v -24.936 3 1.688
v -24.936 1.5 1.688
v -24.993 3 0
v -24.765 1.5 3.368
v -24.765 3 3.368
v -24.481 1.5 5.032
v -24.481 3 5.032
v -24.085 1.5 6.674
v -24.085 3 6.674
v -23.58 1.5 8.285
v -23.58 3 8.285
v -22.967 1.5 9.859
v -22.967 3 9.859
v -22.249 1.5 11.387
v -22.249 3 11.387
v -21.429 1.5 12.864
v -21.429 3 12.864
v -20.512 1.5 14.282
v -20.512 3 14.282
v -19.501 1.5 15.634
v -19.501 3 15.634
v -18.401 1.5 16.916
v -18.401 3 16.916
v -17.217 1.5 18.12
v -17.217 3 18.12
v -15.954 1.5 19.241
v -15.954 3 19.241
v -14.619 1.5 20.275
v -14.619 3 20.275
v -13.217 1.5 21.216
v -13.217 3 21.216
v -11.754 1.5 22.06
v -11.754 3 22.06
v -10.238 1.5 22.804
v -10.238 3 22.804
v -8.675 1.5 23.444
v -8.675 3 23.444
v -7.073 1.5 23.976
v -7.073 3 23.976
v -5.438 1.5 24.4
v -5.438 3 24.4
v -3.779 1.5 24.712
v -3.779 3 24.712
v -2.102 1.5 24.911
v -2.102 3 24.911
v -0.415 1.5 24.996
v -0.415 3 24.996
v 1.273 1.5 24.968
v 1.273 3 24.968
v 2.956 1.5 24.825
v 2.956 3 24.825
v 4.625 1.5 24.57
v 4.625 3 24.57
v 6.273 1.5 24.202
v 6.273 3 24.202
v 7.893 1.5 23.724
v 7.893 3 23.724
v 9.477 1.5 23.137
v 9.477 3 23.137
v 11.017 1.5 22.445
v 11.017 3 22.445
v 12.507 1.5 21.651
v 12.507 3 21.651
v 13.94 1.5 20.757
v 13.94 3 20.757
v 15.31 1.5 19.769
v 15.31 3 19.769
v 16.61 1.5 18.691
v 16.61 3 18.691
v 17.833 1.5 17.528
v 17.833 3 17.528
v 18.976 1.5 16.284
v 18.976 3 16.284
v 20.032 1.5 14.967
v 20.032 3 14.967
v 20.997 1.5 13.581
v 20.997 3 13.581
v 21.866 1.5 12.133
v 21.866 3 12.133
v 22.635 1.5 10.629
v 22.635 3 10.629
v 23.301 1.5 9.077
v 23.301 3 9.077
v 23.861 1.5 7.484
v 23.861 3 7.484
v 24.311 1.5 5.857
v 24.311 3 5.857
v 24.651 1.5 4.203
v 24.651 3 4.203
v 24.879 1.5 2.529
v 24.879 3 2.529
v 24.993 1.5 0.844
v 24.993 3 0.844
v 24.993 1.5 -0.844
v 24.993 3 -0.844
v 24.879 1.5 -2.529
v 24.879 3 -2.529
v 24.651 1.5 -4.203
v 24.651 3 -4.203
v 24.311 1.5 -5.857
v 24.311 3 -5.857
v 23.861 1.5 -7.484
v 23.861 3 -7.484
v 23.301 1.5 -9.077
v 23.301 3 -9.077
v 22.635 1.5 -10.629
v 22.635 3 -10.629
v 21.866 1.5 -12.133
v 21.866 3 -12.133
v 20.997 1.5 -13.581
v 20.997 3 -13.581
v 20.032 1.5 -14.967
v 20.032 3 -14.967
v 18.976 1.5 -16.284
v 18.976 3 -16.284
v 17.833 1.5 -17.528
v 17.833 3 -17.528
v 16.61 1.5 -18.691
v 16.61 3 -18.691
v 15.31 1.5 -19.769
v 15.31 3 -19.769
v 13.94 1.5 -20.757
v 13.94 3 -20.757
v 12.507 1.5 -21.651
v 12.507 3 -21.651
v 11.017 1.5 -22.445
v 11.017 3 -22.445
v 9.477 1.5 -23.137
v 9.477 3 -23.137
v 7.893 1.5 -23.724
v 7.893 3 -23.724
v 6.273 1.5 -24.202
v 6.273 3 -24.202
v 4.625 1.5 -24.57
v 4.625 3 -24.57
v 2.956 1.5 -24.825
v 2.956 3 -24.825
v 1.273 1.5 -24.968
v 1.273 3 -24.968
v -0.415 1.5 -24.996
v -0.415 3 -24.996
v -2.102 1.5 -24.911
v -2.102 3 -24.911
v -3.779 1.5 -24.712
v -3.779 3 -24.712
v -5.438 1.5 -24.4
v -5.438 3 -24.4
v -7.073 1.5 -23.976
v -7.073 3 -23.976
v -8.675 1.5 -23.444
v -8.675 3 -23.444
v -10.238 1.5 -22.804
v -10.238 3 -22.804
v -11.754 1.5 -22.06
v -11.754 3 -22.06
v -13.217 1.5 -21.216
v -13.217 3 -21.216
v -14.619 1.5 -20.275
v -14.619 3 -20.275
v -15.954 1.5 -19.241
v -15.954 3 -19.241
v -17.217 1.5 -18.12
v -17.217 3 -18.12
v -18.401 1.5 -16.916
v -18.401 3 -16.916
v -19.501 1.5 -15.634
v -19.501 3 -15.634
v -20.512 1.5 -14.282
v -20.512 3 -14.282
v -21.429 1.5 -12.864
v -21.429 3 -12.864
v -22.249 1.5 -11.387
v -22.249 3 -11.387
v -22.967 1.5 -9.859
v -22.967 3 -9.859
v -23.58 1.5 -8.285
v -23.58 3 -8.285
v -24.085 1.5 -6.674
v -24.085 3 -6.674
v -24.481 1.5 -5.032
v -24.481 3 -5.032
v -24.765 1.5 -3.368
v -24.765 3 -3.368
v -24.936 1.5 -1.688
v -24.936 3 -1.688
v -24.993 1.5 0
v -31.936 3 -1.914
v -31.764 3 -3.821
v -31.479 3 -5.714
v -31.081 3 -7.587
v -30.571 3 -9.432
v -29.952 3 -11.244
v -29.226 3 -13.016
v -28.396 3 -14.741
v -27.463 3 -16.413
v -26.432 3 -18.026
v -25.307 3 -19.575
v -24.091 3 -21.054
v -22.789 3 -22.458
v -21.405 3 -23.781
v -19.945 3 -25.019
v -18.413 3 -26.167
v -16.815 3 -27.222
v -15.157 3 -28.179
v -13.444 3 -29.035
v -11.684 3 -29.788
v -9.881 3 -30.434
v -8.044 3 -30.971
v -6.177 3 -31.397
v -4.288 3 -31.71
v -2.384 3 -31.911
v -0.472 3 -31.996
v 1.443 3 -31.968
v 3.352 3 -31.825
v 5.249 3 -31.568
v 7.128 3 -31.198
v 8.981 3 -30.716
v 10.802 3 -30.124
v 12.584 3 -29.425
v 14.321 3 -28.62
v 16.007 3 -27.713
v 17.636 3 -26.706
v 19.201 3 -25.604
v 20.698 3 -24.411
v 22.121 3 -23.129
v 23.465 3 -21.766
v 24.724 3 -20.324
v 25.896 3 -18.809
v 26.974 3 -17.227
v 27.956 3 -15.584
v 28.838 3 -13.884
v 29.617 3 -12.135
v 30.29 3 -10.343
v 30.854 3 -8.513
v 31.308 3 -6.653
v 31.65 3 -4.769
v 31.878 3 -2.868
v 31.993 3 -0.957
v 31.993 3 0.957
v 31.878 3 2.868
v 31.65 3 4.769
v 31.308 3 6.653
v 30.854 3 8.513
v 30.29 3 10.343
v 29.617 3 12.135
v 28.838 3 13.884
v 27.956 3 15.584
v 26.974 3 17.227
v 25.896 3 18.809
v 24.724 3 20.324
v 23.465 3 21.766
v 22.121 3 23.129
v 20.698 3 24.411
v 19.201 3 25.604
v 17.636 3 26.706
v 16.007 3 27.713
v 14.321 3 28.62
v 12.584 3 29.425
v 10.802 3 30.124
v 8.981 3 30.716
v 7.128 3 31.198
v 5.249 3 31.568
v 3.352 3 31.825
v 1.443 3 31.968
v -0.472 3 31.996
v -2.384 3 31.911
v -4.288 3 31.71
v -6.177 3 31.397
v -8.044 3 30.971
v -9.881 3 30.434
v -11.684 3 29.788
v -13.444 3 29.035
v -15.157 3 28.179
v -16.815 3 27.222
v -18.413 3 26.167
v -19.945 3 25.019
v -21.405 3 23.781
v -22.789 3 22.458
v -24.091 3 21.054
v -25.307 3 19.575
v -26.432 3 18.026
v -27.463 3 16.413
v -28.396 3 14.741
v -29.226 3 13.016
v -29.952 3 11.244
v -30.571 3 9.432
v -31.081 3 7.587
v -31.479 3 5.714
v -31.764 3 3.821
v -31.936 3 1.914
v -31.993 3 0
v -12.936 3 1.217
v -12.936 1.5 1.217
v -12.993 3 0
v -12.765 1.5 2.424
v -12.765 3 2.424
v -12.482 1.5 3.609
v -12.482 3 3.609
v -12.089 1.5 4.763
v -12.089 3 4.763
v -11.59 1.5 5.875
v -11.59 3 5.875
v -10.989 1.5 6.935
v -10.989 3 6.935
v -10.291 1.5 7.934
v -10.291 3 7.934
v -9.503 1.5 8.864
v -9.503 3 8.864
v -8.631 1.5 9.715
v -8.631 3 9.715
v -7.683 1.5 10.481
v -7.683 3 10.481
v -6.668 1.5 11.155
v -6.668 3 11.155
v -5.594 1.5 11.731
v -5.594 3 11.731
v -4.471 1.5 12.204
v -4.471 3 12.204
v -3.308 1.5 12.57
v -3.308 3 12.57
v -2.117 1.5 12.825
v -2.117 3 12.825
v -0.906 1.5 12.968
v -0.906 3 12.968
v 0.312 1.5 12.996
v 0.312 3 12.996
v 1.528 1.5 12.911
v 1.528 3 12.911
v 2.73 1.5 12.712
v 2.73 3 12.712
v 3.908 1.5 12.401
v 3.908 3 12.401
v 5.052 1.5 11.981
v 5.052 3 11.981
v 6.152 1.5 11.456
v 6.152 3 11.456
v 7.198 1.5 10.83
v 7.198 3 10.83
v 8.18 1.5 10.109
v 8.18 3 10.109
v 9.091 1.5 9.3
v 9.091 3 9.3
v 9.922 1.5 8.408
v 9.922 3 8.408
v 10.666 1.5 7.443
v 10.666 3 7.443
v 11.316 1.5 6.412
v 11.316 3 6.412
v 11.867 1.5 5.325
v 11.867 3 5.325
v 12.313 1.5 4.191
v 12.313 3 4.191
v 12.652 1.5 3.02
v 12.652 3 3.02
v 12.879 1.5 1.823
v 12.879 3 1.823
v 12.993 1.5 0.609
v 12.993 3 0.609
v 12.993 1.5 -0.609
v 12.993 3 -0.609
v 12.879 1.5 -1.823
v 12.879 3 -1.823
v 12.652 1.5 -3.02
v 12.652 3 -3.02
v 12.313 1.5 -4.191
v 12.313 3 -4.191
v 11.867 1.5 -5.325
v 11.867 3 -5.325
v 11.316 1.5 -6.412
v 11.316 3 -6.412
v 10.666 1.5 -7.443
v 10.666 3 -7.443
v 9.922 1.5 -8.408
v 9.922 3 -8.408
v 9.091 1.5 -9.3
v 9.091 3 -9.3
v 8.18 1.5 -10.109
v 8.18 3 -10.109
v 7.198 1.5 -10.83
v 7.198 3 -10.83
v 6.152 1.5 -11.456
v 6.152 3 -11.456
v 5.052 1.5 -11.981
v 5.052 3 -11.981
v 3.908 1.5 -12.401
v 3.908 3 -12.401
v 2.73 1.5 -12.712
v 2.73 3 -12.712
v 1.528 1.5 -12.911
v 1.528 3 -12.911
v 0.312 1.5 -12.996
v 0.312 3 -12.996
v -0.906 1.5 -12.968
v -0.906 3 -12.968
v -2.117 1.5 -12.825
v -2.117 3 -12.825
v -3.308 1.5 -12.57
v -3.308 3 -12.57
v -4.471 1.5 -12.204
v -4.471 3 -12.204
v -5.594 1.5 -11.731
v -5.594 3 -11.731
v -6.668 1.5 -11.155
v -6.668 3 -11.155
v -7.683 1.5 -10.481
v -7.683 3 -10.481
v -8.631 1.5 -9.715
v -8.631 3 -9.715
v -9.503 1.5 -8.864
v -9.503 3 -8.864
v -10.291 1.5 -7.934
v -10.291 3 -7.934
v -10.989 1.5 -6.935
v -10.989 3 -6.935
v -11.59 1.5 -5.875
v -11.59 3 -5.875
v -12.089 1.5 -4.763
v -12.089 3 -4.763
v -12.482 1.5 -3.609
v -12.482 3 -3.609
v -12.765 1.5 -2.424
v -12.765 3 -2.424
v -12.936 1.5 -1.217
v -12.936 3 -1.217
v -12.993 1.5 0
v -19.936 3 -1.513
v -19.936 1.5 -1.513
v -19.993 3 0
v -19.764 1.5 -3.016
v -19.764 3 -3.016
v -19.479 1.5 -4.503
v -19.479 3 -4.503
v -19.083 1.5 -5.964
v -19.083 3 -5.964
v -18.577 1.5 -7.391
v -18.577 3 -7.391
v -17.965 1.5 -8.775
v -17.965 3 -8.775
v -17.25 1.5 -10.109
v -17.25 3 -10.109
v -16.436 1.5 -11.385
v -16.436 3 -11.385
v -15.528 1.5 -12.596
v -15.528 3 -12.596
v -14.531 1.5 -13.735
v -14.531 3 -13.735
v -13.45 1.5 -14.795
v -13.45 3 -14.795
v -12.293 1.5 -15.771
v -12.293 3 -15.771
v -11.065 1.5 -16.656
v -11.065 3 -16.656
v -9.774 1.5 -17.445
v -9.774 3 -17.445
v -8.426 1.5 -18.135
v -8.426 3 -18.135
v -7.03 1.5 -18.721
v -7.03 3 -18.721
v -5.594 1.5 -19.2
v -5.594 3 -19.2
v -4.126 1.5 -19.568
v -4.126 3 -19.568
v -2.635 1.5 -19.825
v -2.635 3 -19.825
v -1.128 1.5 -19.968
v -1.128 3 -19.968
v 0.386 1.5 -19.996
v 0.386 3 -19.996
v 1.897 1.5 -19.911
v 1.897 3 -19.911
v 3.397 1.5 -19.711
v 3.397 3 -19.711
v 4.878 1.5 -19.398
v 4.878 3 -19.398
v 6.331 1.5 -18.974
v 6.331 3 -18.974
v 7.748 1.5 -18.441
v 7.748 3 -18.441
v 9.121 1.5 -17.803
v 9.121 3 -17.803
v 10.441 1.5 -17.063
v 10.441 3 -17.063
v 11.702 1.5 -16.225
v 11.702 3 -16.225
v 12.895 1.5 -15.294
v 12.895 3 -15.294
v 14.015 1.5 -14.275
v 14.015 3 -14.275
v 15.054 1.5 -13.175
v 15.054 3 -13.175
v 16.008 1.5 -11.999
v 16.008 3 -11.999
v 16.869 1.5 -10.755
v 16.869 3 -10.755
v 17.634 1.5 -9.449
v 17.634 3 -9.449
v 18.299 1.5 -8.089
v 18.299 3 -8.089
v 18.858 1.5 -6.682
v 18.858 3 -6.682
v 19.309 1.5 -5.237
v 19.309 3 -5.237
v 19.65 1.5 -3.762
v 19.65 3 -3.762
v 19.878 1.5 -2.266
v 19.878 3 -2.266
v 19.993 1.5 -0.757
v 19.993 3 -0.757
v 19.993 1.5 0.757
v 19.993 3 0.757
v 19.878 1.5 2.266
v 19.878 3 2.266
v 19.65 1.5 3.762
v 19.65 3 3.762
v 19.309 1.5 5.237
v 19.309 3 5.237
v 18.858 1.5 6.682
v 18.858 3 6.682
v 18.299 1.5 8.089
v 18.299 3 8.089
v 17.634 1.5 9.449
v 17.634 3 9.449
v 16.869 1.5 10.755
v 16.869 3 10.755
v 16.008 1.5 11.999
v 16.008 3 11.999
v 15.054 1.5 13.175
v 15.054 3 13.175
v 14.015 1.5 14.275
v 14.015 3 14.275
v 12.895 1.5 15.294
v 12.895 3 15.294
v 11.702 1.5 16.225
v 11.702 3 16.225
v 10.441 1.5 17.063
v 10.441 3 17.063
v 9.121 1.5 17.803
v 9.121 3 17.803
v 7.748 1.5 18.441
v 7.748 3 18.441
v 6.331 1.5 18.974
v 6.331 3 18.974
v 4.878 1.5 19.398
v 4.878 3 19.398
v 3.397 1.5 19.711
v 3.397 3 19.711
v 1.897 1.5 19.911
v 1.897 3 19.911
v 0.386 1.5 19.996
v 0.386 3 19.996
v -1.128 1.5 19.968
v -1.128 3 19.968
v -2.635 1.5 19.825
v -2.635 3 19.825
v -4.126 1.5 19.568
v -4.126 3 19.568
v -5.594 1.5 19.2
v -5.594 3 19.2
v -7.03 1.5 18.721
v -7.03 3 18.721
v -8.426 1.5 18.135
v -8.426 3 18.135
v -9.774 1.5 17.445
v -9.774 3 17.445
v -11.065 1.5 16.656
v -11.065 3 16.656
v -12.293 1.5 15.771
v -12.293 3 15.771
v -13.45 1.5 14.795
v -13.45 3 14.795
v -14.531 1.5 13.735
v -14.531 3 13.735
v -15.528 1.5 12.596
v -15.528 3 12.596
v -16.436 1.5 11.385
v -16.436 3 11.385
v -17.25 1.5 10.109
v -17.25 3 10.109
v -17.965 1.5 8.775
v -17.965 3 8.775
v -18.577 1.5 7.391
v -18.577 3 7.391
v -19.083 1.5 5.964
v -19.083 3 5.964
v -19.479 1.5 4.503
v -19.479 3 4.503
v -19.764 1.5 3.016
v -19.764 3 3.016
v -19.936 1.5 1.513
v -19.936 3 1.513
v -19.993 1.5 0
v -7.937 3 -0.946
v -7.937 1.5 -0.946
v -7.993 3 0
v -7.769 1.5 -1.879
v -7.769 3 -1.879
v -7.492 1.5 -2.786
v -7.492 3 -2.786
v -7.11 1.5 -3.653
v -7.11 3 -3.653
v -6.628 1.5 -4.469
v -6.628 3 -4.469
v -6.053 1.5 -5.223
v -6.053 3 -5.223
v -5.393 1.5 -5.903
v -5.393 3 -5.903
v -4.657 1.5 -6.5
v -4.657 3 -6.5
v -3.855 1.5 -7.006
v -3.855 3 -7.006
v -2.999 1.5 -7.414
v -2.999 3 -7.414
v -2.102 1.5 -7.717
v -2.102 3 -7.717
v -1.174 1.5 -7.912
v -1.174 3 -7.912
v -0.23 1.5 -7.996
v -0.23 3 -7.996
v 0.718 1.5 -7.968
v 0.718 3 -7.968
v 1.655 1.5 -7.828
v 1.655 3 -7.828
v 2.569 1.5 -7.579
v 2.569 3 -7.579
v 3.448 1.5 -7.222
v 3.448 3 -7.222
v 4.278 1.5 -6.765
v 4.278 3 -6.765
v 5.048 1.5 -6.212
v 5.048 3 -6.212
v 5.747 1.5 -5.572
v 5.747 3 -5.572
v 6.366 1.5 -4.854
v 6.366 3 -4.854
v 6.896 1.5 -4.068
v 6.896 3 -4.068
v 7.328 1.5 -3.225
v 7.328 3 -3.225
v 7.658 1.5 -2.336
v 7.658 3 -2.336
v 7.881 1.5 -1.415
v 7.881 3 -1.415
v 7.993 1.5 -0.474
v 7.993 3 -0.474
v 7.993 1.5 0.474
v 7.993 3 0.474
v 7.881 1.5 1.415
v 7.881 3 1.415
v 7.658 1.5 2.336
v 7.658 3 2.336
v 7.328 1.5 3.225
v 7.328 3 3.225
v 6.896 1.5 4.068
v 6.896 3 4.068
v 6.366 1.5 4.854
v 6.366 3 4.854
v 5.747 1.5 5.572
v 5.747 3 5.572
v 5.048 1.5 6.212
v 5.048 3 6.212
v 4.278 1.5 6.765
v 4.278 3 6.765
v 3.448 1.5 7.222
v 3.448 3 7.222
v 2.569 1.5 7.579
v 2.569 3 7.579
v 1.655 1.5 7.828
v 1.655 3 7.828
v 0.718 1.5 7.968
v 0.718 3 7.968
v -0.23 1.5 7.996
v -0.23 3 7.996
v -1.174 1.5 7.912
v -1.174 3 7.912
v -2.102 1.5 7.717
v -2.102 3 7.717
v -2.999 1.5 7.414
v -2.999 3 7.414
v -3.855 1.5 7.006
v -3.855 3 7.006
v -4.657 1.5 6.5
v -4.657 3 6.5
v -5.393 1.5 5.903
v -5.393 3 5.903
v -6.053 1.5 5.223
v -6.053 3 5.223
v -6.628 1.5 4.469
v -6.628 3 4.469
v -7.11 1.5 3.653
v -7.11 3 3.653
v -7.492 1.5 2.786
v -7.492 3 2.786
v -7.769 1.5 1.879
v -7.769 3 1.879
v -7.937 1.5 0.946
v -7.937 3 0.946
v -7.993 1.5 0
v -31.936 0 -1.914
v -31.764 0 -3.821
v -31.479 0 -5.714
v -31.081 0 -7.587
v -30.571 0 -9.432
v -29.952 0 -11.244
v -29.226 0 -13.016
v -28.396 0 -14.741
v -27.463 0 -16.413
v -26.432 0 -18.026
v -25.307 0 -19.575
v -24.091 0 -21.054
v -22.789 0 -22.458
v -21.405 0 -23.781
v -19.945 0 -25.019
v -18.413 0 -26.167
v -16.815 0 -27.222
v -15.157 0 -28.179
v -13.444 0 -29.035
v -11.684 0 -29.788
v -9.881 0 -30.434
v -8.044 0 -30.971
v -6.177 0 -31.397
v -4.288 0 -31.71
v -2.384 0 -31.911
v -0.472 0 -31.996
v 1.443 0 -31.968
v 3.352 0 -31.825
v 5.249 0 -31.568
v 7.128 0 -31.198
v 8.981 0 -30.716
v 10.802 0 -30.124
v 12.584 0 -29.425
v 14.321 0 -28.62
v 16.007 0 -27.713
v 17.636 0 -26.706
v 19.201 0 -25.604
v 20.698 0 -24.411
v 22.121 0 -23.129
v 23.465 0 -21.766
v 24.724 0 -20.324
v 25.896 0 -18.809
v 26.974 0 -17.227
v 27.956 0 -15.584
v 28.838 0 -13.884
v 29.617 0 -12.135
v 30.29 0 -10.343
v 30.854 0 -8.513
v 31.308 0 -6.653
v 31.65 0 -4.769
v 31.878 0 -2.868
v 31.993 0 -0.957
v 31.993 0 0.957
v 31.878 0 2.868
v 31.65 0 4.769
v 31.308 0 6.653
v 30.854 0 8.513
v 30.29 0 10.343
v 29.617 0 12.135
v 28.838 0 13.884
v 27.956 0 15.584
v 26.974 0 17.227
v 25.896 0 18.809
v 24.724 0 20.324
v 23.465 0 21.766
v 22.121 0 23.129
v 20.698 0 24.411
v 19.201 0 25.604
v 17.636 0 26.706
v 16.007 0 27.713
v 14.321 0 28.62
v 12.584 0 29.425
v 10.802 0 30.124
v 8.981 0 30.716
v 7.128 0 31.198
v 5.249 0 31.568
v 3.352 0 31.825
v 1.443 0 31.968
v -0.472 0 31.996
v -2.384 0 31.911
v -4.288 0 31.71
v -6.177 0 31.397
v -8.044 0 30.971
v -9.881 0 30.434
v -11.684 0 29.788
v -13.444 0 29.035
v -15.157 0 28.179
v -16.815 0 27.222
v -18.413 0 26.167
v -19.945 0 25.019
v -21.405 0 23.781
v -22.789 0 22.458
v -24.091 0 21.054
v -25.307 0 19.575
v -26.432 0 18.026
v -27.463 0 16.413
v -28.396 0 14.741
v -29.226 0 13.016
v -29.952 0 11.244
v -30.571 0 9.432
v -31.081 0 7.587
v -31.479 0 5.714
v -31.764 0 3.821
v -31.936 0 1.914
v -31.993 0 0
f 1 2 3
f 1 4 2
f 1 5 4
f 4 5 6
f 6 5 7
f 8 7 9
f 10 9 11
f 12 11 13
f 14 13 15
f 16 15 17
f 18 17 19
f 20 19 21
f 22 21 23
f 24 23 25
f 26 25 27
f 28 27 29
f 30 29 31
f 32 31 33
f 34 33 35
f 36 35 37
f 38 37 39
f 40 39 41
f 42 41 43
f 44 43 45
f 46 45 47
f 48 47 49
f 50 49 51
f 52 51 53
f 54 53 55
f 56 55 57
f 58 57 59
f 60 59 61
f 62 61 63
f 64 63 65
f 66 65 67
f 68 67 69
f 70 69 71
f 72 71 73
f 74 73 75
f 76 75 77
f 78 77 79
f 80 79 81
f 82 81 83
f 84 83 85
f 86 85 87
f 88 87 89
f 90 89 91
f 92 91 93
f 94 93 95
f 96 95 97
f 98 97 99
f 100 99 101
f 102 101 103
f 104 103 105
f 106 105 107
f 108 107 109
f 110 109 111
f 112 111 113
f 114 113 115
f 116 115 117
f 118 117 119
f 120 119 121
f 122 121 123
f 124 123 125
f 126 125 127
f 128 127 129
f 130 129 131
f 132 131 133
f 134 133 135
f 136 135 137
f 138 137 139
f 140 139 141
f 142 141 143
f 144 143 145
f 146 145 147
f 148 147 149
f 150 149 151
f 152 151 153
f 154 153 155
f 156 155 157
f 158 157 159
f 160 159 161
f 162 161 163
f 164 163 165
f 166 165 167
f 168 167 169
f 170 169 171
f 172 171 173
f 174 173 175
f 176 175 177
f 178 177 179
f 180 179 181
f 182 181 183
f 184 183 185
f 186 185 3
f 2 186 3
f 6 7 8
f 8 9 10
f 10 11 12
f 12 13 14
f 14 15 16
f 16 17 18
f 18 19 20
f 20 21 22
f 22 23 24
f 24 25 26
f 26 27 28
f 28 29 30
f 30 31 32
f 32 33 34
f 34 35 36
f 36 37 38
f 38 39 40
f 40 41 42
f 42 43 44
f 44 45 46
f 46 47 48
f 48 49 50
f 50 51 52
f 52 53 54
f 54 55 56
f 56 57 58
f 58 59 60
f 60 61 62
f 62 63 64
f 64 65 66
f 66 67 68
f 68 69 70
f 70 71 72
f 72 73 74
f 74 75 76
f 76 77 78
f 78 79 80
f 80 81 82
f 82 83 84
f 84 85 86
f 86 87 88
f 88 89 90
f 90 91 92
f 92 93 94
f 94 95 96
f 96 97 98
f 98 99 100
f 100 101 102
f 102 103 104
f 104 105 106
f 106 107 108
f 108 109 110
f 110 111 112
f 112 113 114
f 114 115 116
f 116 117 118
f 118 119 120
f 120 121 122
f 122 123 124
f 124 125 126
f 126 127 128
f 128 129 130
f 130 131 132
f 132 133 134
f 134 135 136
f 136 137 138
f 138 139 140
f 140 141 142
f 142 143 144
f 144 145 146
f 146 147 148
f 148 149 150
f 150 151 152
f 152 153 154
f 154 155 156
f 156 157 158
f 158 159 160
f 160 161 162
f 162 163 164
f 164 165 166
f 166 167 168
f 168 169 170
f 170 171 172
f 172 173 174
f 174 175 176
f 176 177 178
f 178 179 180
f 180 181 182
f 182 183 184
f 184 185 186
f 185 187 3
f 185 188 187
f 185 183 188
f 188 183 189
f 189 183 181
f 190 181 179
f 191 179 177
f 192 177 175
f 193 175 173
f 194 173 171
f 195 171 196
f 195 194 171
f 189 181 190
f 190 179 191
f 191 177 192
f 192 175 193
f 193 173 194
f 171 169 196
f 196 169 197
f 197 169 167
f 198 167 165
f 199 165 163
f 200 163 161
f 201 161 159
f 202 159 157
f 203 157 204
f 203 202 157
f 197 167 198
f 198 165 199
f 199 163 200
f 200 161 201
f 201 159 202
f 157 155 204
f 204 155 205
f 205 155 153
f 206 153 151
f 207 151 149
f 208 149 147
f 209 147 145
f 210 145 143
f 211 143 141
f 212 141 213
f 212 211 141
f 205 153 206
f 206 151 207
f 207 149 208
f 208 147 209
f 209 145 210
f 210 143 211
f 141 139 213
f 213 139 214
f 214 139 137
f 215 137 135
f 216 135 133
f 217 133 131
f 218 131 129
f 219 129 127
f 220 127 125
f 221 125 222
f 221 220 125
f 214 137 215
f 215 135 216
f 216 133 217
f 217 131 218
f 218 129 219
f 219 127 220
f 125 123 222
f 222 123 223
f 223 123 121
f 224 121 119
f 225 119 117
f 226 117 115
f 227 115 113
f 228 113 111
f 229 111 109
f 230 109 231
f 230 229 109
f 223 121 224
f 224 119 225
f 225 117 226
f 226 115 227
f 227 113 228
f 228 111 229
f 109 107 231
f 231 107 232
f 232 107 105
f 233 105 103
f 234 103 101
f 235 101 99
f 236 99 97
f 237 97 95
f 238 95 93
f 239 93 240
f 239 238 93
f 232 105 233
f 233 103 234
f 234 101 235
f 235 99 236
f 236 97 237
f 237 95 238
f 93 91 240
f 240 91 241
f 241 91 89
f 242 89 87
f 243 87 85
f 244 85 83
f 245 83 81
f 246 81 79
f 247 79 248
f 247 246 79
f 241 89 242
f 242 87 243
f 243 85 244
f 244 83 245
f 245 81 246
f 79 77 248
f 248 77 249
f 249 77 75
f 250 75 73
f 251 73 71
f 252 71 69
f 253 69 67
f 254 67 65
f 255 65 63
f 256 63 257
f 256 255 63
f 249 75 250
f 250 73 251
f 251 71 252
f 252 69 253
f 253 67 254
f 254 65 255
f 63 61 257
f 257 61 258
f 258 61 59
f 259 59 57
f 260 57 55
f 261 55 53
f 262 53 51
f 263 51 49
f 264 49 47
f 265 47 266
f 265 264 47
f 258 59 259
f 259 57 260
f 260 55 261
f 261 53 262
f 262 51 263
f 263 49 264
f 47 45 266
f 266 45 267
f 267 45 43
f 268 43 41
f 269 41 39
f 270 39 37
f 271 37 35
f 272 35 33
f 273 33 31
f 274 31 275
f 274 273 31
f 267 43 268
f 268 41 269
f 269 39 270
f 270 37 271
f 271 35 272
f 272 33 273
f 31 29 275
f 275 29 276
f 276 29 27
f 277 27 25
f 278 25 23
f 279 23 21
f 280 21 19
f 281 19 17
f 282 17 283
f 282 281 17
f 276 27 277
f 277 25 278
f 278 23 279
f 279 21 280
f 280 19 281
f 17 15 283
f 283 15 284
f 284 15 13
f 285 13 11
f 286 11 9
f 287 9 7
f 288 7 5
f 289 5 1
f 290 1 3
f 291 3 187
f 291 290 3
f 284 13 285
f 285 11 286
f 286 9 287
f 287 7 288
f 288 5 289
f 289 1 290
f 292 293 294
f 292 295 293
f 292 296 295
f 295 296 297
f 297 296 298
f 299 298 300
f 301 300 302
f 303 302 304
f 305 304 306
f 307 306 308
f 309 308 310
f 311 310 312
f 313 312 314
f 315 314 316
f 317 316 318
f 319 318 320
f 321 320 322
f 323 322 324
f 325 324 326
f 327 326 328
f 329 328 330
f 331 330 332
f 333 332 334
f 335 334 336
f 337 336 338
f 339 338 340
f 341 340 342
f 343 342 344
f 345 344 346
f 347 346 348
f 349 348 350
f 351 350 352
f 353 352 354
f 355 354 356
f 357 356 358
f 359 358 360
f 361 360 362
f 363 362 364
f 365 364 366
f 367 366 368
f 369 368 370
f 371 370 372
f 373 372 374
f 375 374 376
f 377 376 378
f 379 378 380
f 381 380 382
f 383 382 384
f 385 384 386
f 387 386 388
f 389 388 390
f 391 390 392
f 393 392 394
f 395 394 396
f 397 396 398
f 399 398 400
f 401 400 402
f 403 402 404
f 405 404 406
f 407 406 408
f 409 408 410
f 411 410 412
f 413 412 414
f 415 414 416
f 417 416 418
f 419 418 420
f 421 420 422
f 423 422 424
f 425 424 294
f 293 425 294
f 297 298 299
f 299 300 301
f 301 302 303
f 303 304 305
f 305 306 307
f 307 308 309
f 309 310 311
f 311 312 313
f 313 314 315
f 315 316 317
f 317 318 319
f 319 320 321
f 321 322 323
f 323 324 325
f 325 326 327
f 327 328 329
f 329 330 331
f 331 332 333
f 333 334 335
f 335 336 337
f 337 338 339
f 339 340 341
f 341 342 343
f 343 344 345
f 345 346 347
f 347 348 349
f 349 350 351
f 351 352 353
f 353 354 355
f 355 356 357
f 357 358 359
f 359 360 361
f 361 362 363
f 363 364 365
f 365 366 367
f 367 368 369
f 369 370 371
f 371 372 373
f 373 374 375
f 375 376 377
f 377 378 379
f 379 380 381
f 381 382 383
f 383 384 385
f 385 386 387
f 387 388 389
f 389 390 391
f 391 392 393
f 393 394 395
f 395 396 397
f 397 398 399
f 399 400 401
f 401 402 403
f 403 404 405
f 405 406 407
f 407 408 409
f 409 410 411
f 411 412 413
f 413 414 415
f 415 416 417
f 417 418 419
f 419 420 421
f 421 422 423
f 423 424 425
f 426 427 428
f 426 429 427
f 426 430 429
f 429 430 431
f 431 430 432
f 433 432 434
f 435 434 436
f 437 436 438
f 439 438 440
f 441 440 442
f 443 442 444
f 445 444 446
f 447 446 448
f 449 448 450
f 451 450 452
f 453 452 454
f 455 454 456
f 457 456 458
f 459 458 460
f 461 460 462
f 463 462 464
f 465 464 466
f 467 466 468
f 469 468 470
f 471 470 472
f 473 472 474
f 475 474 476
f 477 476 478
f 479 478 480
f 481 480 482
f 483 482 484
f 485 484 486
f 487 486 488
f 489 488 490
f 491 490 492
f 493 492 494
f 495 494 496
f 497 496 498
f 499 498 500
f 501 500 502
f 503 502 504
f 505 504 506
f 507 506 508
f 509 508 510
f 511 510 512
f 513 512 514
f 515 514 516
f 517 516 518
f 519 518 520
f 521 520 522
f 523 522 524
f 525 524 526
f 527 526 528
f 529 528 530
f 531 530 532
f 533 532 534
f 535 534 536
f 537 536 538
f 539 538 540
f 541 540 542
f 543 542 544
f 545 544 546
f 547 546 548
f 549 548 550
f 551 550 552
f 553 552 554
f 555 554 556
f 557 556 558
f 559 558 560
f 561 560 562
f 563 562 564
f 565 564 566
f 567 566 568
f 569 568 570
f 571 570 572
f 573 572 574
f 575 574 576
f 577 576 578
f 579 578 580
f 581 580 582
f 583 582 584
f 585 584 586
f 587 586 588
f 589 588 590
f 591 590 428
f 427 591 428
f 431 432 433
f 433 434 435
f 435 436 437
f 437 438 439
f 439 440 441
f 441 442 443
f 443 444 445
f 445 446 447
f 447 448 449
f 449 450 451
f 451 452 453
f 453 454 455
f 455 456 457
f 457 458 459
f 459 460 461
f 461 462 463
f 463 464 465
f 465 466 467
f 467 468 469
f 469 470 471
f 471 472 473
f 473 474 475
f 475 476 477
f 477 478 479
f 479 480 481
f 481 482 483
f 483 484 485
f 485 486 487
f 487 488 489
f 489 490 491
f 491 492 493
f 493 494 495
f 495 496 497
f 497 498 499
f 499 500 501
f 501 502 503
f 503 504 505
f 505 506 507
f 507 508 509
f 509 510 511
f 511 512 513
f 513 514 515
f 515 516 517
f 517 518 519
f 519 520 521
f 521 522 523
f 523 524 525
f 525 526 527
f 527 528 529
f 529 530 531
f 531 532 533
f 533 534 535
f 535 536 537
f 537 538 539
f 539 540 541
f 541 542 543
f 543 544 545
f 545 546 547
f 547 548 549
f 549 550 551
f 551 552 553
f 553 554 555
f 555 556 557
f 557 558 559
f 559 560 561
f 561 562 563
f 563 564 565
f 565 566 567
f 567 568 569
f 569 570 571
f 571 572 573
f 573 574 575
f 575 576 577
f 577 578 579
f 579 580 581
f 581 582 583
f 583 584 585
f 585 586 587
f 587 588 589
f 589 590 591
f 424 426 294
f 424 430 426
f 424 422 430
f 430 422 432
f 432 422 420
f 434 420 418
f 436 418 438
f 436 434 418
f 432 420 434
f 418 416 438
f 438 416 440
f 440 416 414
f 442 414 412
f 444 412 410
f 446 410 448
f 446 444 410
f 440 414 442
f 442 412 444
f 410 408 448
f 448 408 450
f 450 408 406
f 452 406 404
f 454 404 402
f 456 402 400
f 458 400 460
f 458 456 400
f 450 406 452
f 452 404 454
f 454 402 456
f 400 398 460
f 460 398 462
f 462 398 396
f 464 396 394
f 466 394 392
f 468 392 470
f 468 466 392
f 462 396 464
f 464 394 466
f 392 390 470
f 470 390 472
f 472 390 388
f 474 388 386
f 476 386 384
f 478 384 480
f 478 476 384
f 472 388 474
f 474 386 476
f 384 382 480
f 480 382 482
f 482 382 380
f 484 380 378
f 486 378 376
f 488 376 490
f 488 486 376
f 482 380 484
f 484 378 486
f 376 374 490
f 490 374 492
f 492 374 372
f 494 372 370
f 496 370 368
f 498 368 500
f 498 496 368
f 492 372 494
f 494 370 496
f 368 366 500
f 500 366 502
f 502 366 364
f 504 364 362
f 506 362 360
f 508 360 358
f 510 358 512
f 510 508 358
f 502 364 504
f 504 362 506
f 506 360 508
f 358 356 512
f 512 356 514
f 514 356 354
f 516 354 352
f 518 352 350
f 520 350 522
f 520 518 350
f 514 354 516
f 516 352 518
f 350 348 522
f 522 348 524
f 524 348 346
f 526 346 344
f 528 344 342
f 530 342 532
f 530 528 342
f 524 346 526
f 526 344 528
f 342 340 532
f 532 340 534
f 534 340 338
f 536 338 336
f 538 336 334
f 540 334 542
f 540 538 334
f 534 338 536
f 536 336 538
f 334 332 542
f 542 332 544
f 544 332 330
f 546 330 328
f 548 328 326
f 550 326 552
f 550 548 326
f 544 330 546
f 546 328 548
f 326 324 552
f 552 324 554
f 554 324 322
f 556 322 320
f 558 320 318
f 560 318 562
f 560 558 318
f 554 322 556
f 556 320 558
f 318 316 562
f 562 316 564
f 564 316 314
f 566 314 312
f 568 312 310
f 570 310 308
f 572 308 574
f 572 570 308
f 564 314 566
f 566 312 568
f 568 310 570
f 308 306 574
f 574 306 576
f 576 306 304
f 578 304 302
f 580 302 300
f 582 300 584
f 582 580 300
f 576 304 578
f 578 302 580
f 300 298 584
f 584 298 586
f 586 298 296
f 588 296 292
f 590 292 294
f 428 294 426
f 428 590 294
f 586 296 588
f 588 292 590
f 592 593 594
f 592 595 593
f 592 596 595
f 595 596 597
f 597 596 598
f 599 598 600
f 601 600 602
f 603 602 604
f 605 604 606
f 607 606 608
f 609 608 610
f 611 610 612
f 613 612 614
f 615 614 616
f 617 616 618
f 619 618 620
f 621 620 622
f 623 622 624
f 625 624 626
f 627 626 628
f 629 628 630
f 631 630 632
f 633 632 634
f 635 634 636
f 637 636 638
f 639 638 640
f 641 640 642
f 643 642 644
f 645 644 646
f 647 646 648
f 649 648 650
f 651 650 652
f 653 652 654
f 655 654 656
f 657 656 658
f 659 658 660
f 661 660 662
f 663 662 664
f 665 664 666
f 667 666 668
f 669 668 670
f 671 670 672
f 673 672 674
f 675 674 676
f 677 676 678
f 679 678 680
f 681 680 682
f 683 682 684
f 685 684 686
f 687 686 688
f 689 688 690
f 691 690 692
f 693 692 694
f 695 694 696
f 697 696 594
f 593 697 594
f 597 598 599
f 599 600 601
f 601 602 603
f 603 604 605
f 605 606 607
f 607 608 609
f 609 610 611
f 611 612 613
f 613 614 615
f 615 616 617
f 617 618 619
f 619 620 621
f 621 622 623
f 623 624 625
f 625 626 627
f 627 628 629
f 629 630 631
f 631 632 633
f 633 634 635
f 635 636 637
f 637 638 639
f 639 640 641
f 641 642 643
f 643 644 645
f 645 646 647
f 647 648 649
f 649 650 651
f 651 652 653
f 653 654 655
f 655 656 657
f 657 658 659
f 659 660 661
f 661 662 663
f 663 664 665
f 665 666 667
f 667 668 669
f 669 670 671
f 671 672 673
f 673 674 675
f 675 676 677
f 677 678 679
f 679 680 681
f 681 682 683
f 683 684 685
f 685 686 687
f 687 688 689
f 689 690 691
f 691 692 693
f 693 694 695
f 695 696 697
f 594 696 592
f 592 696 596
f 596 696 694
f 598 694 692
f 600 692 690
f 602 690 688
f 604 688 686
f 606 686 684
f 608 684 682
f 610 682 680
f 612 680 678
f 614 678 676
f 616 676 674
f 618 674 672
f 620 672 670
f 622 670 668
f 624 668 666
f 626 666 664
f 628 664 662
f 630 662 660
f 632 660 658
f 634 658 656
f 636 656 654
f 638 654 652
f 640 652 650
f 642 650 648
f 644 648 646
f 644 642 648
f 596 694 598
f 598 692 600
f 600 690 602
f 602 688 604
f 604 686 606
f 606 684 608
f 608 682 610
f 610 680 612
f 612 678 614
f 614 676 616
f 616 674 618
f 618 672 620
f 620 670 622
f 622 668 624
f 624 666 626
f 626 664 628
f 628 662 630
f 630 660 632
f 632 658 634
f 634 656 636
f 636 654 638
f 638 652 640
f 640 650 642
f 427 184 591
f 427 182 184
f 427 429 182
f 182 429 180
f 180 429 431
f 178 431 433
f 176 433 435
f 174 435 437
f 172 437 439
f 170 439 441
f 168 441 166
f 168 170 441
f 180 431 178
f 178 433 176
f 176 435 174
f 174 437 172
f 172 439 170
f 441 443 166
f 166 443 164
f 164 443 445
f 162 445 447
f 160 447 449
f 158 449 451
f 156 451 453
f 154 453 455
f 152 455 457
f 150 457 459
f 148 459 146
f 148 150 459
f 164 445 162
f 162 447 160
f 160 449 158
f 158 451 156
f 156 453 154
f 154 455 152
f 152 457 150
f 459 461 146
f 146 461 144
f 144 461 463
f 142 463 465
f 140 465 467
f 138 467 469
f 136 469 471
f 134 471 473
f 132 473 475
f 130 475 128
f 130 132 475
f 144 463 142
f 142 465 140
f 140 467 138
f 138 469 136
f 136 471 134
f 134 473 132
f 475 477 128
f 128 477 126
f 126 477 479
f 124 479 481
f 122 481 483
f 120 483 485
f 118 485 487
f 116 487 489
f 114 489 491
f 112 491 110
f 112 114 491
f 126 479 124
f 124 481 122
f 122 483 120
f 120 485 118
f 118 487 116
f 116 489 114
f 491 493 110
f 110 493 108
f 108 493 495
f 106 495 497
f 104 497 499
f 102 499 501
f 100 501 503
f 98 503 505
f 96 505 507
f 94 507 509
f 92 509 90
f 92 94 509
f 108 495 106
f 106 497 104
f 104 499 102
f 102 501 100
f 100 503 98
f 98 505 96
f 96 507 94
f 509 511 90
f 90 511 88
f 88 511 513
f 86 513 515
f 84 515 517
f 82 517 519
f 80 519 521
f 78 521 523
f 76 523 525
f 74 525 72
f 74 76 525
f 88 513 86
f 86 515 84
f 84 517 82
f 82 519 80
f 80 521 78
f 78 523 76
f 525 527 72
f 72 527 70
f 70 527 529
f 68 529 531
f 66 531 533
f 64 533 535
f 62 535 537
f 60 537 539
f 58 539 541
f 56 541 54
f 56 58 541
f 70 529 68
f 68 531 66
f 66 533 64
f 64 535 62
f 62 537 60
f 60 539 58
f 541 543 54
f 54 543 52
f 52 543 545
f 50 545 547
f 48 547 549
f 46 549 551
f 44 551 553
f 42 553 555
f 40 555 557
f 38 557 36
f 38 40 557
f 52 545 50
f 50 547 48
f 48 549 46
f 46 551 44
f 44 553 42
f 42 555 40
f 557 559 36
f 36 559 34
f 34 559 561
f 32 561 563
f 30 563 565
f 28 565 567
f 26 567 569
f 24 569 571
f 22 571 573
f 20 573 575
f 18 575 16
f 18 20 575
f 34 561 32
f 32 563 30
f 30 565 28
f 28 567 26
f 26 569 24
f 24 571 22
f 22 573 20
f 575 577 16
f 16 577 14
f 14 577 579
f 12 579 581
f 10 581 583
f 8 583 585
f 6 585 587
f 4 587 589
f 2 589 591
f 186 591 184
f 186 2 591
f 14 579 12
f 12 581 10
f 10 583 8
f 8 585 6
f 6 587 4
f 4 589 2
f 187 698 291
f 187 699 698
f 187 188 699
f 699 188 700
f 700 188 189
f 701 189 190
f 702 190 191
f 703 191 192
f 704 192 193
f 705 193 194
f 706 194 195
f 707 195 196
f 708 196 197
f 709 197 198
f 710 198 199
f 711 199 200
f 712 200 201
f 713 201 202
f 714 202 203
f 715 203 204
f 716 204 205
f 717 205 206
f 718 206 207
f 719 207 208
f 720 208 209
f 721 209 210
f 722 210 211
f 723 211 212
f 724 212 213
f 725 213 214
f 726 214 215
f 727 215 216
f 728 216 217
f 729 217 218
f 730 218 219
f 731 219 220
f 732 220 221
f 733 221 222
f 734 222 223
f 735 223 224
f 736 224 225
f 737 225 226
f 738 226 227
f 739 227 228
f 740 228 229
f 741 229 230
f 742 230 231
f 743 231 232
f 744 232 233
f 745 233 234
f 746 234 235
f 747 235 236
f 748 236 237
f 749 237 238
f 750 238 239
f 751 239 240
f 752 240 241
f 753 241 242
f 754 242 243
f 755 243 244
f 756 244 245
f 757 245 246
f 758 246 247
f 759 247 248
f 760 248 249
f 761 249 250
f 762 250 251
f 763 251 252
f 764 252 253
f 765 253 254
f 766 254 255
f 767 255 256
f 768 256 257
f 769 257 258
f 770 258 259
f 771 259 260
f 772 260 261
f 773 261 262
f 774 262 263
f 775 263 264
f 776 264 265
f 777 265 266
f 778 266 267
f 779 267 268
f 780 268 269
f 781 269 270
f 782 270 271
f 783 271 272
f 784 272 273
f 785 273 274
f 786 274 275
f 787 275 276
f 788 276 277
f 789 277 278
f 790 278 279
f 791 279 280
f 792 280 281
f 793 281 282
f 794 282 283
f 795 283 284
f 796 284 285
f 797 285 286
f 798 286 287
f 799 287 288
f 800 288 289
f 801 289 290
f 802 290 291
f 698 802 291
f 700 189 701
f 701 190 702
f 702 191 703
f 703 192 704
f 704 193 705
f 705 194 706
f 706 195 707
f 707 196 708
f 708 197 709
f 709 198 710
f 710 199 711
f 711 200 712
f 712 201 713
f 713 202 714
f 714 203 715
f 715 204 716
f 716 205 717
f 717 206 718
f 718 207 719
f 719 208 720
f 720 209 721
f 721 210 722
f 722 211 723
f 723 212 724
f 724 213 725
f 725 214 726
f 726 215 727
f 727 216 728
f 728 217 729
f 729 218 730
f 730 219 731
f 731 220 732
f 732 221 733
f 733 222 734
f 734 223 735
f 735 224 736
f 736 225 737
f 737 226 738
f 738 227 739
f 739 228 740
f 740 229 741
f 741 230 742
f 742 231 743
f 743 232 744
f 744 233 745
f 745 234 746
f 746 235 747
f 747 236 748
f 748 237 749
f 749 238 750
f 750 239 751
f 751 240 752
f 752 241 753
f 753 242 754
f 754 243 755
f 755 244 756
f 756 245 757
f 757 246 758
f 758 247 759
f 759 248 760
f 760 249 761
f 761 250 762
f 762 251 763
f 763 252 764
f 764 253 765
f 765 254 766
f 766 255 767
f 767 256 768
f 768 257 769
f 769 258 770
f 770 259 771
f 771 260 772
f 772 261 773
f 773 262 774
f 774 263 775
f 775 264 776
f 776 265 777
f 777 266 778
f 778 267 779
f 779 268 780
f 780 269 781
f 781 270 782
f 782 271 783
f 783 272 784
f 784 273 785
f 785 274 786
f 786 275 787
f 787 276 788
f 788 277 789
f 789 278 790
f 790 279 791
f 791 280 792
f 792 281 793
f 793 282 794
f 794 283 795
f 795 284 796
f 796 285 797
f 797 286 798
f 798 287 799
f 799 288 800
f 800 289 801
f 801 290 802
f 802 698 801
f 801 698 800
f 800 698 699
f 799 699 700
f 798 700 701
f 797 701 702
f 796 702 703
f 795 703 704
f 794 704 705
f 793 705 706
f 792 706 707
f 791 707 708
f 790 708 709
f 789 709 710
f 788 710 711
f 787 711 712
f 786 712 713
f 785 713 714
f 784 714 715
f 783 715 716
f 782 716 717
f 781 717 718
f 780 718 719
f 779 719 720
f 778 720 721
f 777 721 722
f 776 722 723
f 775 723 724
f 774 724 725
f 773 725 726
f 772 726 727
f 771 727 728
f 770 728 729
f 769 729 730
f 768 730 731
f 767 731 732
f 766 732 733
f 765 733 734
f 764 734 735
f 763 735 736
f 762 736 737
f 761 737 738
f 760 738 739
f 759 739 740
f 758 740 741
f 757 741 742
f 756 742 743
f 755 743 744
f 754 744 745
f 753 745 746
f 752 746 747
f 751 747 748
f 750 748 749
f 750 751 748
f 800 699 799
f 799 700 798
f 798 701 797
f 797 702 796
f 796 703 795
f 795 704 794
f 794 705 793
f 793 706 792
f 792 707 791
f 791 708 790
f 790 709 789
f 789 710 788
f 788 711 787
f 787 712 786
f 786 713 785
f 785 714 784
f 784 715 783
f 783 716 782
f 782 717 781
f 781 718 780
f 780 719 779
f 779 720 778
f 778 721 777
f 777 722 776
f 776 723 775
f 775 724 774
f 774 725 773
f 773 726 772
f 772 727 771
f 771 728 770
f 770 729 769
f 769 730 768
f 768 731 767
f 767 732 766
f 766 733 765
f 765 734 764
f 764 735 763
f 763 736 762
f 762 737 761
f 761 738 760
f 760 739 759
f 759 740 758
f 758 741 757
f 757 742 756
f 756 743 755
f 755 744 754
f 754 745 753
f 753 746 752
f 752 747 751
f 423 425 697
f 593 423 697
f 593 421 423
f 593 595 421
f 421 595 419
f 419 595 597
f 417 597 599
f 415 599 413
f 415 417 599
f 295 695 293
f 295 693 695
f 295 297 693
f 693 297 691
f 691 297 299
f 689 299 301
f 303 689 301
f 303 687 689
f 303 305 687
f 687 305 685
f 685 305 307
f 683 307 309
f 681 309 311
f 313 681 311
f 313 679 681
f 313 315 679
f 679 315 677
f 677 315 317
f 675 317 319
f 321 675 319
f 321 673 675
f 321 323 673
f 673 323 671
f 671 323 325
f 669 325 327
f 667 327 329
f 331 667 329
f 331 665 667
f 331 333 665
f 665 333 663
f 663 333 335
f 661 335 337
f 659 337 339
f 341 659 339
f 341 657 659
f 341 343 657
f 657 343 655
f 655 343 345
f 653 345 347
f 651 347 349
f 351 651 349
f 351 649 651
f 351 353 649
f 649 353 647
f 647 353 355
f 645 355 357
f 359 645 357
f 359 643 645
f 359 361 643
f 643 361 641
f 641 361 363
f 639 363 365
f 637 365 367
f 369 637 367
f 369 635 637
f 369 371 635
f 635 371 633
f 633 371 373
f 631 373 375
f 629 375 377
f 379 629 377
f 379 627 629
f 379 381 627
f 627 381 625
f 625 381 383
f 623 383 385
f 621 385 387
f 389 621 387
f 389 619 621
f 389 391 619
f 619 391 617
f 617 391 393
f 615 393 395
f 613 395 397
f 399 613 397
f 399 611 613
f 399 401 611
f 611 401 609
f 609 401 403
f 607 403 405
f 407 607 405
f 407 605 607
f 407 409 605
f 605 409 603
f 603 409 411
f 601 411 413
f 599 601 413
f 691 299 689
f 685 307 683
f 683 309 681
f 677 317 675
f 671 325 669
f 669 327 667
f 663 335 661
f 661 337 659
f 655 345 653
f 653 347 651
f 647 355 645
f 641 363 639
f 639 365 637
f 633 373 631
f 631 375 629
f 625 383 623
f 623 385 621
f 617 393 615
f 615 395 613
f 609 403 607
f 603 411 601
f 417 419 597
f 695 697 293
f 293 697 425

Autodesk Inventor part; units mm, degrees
ref_plane "YZ Plane" through (0, 0, 0) normal (1, 0, 0) x (0, 1, 0)
ref_plane "XZ Plane" through (0, 0, 0) normal (0, 1, 0) x (-1, 0, 0)
ref_plane "XY Plane" through (0, 0, 0) normal (0, 0, 1) x (1, 0, 0)
sketch "Sketch1" plane through (0, 0, 0) normal (0, 1, 0) x (-1, 0, 0)
  circle A0 centre (0, 0) radius 8
  circle A1 centre (0, 0) radius 13
  circle A2 centre (0, 0) radius 20
  circle A3 centre (0, 0) radius 25
  circle A4 centre (0, 0) radius 32
  dimension "d0" = 16
  dimension "d1" = 5
  dimension "d2" = 7
  dimension "d3" = 5
  dimension "d4" = 7
extrude "Extrusion1" add sketch "Sketch1" along normal blind 1.5 contours A0 | A1 | A2 | A3 | A4
extrude "Extrusion2" add sketch "Sketch1" along normal blind 3
properties part number "Marker1"
